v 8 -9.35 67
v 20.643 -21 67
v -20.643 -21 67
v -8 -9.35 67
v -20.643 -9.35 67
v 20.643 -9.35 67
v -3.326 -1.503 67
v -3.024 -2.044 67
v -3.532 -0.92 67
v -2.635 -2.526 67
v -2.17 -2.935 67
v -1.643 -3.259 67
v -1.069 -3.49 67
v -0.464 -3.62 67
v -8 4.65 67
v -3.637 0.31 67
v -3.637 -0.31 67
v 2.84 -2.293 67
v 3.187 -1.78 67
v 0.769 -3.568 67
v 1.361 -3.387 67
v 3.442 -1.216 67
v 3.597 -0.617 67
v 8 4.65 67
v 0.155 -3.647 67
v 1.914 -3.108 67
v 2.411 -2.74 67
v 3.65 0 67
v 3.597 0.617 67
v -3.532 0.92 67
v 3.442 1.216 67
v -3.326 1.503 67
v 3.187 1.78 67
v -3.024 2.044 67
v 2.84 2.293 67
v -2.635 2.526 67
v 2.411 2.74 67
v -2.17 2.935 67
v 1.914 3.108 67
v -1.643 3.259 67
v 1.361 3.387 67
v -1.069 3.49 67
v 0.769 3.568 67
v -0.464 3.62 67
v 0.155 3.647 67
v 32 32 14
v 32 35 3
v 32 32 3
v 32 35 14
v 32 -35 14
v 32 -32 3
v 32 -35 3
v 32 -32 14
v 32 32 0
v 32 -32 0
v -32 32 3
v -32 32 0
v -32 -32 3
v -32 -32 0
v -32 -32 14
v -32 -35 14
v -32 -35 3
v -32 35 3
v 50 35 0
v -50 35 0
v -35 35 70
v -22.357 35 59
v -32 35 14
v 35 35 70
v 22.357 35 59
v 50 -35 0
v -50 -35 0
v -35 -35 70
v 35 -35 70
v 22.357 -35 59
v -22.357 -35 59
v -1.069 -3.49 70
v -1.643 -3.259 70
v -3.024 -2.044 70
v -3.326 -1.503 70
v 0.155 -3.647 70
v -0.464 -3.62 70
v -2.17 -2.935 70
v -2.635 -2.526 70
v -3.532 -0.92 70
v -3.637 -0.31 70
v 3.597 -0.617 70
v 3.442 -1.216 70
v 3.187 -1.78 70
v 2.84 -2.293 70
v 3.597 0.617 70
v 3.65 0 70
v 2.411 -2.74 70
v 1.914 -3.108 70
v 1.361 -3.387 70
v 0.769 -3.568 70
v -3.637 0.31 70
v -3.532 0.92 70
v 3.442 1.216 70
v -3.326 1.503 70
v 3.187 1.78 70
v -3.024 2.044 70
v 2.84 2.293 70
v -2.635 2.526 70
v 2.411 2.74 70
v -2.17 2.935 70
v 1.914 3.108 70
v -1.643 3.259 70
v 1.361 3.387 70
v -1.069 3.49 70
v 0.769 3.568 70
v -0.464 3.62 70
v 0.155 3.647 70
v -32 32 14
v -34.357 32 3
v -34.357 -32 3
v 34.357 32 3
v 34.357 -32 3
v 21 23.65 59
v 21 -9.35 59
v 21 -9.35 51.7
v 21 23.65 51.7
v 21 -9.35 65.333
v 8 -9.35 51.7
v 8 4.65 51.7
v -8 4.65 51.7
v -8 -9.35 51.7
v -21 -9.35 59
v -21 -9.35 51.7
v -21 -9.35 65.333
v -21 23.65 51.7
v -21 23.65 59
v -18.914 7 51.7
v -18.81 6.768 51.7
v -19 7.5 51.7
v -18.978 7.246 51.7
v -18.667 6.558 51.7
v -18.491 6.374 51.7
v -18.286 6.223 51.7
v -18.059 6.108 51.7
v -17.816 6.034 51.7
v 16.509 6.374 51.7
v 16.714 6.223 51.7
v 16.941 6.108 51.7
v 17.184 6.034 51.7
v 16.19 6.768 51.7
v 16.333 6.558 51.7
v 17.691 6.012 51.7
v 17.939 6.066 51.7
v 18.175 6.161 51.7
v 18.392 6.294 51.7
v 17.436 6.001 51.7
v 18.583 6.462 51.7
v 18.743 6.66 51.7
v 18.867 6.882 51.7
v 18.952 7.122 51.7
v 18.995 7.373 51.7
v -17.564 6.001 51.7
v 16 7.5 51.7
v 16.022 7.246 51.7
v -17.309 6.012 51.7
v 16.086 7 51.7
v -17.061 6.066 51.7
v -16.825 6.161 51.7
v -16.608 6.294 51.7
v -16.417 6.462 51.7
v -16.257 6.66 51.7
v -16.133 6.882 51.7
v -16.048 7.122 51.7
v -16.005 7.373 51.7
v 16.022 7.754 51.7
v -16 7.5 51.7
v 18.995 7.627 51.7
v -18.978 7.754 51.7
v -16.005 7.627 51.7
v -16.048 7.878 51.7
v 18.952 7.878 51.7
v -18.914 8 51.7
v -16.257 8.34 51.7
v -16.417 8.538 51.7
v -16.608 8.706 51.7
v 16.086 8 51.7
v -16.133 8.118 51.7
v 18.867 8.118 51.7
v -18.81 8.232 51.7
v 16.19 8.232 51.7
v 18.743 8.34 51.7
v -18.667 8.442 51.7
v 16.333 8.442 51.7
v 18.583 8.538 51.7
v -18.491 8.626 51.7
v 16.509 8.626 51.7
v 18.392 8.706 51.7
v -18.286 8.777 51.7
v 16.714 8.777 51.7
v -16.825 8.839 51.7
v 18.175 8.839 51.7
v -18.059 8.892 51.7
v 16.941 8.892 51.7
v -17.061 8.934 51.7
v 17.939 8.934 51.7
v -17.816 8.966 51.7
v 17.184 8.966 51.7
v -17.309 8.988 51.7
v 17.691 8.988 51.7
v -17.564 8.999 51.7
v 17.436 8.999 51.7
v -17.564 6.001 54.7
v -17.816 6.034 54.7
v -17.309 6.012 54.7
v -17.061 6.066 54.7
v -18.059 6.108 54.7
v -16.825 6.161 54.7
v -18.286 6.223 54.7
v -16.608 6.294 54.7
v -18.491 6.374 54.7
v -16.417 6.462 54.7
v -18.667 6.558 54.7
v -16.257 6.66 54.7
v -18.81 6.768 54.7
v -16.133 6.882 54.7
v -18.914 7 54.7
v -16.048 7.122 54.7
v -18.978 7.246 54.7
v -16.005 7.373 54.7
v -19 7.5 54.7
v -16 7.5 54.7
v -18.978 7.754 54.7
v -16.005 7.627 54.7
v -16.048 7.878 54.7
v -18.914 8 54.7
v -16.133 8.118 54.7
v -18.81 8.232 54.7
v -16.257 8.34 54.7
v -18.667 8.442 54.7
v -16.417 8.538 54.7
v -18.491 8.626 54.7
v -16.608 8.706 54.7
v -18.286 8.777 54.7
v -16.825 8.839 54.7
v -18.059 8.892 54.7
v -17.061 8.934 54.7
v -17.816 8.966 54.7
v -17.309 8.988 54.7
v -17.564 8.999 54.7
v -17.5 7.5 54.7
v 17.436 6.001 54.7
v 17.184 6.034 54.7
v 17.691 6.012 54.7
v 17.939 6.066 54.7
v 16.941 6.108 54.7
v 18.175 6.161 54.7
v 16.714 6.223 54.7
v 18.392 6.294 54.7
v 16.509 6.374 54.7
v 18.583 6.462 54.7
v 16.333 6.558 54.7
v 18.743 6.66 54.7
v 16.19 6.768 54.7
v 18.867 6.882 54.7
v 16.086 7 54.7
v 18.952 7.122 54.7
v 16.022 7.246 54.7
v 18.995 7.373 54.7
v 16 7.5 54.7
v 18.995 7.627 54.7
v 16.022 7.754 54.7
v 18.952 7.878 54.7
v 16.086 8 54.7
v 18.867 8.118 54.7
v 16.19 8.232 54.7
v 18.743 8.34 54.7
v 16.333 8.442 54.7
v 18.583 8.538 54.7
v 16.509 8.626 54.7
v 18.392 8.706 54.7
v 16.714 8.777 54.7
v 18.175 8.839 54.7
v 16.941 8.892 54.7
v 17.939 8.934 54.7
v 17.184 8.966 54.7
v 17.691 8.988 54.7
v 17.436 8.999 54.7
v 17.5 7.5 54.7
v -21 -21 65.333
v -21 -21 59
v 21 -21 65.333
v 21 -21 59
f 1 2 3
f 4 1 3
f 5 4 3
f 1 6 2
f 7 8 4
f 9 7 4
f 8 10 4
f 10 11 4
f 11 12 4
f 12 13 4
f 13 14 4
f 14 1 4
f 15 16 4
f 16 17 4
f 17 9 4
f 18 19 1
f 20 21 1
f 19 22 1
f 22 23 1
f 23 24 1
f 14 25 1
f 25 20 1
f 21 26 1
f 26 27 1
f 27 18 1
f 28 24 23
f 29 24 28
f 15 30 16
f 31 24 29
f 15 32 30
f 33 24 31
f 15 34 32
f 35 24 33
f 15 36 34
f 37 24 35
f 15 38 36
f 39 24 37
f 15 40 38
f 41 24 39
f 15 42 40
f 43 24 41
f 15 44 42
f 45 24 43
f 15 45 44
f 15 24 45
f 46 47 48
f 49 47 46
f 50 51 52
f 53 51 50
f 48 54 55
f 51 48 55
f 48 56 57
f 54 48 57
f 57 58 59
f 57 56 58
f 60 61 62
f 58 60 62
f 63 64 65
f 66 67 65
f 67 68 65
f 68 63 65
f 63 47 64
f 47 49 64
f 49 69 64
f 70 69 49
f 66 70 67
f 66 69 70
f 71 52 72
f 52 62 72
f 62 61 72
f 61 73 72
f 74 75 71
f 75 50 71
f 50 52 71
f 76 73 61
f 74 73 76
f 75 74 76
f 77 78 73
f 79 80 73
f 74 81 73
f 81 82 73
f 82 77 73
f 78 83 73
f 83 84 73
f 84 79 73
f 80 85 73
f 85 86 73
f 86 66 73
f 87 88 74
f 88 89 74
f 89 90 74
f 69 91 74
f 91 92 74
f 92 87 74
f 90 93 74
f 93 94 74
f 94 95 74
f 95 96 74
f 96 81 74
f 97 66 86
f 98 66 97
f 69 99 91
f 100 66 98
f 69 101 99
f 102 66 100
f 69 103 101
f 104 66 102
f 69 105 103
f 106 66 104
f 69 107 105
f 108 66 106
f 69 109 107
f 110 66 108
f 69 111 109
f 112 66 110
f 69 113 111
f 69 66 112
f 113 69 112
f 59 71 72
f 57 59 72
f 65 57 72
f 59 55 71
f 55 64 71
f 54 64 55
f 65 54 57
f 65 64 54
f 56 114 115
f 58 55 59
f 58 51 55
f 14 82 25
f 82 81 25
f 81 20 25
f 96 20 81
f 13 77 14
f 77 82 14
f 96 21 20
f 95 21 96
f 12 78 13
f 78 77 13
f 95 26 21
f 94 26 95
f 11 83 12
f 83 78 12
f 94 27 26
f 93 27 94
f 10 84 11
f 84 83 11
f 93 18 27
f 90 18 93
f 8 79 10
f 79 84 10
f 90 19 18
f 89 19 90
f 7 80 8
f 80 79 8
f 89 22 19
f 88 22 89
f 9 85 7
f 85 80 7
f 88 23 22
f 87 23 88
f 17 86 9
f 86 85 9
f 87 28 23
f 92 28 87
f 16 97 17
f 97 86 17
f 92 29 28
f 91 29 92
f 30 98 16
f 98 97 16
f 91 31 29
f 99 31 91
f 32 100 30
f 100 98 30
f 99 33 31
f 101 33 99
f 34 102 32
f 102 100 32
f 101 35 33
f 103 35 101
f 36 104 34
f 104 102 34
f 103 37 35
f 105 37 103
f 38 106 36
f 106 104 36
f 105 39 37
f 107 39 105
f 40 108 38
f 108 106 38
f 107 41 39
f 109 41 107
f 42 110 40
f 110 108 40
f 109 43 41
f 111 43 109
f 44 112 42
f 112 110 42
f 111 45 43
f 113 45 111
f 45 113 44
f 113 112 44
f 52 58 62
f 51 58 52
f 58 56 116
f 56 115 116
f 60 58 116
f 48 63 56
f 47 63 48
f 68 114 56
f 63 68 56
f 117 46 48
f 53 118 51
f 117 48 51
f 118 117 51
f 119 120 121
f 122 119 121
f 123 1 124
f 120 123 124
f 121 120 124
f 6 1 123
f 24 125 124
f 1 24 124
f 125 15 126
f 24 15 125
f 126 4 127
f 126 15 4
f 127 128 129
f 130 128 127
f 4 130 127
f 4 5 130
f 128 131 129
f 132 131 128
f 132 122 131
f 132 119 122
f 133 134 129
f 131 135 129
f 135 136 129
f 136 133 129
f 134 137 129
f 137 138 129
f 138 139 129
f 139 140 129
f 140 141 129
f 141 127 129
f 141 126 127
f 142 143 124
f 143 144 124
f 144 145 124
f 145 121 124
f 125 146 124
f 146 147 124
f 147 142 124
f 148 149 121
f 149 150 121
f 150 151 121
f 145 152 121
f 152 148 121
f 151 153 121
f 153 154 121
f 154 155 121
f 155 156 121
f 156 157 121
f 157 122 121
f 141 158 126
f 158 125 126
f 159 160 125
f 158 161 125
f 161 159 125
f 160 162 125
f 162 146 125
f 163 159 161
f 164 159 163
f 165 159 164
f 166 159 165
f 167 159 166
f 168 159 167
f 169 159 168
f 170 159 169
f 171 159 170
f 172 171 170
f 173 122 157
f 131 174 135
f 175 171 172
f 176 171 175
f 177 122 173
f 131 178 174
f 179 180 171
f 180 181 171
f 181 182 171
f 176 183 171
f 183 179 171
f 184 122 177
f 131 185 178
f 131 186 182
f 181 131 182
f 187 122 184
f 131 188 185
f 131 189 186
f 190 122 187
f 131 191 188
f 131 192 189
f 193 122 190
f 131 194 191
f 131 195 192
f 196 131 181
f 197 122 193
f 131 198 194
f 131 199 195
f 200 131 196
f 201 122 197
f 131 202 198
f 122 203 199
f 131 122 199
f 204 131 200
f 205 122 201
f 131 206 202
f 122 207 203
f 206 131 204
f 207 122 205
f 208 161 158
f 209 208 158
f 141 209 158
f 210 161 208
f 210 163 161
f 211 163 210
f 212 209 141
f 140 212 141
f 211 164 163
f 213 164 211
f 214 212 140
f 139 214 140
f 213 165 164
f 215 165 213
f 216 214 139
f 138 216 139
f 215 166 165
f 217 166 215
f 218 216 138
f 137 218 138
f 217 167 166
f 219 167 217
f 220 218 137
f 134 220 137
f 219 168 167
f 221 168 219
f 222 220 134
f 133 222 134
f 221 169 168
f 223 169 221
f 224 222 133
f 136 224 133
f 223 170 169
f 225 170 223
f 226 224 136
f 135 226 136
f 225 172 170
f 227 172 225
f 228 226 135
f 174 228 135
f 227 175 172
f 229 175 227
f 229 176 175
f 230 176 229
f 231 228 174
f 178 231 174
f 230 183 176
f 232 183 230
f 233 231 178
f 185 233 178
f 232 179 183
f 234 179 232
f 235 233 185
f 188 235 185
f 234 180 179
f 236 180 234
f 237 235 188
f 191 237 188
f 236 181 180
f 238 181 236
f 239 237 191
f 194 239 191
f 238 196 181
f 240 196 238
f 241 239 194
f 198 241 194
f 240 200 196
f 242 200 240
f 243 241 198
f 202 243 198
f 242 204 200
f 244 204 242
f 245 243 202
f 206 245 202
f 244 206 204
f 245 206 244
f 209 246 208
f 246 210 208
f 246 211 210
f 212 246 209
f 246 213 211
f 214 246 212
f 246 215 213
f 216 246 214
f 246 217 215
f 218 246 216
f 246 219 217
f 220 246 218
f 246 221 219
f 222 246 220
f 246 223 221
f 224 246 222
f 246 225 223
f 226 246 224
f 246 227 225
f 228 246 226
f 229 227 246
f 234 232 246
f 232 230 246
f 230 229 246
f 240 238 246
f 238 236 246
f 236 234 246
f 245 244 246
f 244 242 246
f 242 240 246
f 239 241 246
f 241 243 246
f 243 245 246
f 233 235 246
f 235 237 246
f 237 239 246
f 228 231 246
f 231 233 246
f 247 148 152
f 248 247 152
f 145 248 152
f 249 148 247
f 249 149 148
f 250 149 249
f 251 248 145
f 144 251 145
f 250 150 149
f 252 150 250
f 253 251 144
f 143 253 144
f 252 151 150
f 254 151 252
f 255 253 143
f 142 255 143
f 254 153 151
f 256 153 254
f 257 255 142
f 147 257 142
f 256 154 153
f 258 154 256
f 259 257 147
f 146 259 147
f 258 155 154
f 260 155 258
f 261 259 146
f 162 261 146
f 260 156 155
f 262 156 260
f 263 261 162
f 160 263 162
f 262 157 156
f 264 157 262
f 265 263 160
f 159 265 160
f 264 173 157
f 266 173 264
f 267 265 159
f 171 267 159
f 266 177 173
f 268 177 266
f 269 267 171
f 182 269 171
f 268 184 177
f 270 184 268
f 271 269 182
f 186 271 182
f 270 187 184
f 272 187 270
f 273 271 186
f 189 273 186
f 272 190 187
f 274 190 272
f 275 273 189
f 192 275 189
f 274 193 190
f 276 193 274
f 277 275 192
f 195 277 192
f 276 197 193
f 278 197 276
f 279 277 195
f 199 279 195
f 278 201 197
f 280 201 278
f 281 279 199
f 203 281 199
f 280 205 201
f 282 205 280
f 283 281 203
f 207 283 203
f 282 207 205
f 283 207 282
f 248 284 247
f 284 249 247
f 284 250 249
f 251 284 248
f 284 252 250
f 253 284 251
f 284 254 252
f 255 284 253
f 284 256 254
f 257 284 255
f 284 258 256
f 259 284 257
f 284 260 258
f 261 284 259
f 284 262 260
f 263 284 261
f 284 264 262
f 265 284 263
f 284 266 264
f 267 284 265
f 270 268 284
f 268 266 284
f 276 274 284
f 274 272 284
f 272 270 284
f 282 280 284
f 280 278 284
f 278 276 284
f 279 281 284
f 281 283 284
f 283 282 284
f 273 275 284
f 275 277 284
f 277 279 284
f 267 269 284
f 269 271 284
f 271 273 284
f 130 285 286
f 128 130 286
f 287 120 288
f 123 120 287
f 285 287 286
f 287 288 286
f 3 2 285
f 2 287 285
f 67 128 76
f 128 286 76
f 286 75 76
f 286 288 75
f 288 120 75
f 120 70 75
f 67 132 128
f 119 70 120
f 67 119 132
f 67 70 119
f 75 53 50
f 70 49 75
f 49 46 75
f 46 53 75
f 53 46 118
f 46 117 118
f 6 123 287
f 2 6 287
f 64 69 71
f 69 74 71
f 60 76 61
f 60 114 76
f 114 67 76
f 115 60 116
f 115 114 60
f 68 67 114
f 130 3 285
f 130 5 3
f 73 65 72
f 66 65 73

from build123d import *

# Parameters (mm, degrees)
SCHIZZO1_W                   = 70
SCHIZZO1_H                   = 70
ESTRUSIONE_ESTRUSIONE1_DEPTH = 70
SCHIZZO3_W                   = 64
SCHIZZO3_H                   = 64
TAGLIO_ESTRUSIONE2_DEPTH     = 67
TAGLIO_ESTRUSIONE1_REACH     = 87.732
SCHIZZO2_R                   = 3.65
TAGLIO_ESTRUSIONE3_START     = -70
SCHIZZO4_W                   = 64
SCHIZZO4_H                   = 64
TAGLIO_ESTRUSIONE3_DEPTH     = 70
SPECCHIA2_START              = -70
SPECCHIA2_COPY_1_SKETCH_W    = 64
SPECCHIA2_COPY_1_SKETCH_H    = 64
SPECCHIA2_COPY_1_DEPTH       = 70
ESTRUSIONE_ESTRUSIONE2_DEPTH = 15.3
SCHIZZO6_R                   = 1.5
TAGLIO_ESTRUSIONE4_DEPTH     = 3
SCHIZZO7_W                   = 42
SCHIZZO7_H                   = 14
SCHIZZO7_H_2                 = 11.35
ESTRUSIONE_ESTRUSIONE3_DEPTH = 8
SCHIZZO8_W                   = 15
SCHIZZO8_H                   = 70


with BuildPart() as part:
    # Schizzo1 → Estrusione-Estrusione1 (new body)
    with BuildSketch(Plane.XY):
        Rectangle(SCHIZZO1_W, SCHIZZO1_H)
    extrude(amount=ESTRUSIONE_ESTRUSIONE1_DEPTH)

    # Schizzo3 → Taglio-Estrusione2 (cut)
    with BuildSketch(Plane(origin=(0, 0, 0), x_dir=(-1, 0, 0), z_dir=(0, 0, -1))):
        Rectangle(SCHIZZO3_W, SCHIZZO3_H)
    extrude(amount=-TAGLIO_ESTRUSIONE2_DEPTH, mode=Mode.SUBTRACT)

    # Schizzo2 → Taglio-Estrusione1 (cut, up to next)
    with BuildSketch(Plane.XY.offset(70), mode=Mode.PRIVATE) as taglio_estrusione1_sk1:
        Circle(SCHIZZO2_R)
    taglio_estrusione1_tool1 = extrude(taglio_estrusione1_sk1.sketch, amount=-TAGLIO_ESTRUSIONE1_REACH, mode=Mode.PRIVATE) & part.part
    add(taglio_estrusione1_tool1.solids().sort_by_distance((0, 0, 70))[0], mode=Mode.SUBTRACT)

    # Schizzo4 → Taglio-Estrusione3 (cut)
    with BuildSketch(Plane.XZ.offset(35).offset(TAGLIO_ESTRUSIONE3_START)):
        with Locations((0, 35)):
            Rectangle(SCHIZZO4_W, SCHIZZO4_H)
    taglio_estrusione3 = extrude(amount=TAGLIO_ESTRUSIONE3_DEPTH, mode=Mode.SUBTRACT)

    # Specchia1: Taglio-Estrusione3 across plane
    add(taglio_estrusione3.mirror(Plane(origin=(0, 0, 0), x_dir=(0, 0, 1), z_dir=(-0.7071067811865476, 0.7071067811865475, 0))), mode=Mode.SUBTRACT)

    # Specchia2: Taglio-Estrusione3 across plane
    add(taglio_estrusione3.mirror(Plane(origin=(0, 0, 0), x_dir=(0, 0, 1), z_dir=(-0.7071067811865476, 0.7071067811865475, 0))), mode=Mode.SUBTRACT)

    # Specchia2 copy 1 sketch → Specchia2 copy 1 (cut)
    with BuildSketch(Plane.XZ.offset(35).offset(SPECCHIA2_START)):
        with Locations((0, 35)):
            Rectangle(SPECCHIA2_COPY_1_SKETCH_W, SPECCHIA2_COPY_1_SKETCH_H)
    extrude(amount=SPECCHIA2_COPY_1_DEPTH, mode=Mode.SUBTRACT)

    # Schizzo5 → Estrusione-Estrusione2 (add)
    with BuildSketch(Plane(origin=(0, 0, 67), x_dir=(-1, 0, 0), z_dir=(0, 0, -1))):
        Polygon((-21, 23.65), (21, 23.65), (21, -9.35), (8, -9.35), (8, 4.65), (-8, 4.65), (-8, -9.35), (-21, -9.35), align=None)
    extrude(amount=ESTRUSIONE_ESTRUSIONE2_DEPTH)

    # Schizzo6 → Taglio-Estrusione4 (cut)
    with BuildSketch(Plane(origin=(0, 0, 51.7), x_dir=(-1, 0, 0), z_dir=(0, 0, -1))):
        with Locations((-17.5, 7.5)):
            Circle(SCHIZZO6_R)
        with Locations(Location((17.5, 7.5, 0), (0, 0, 180))):
            Circle(SCHIZZO6_R)
    extrude(amount=-TAGLIO_ESTRUSIONE4_DEPTH, mode=Mode.SUBTRACT)

    # Schizzo7 → Estrusione-Estrusione3 (add)
    with BuildSketch(Plane(origin=(0, 0, 67), x_dir=(-1, 0, 0), z_dir=(0, 0, -1))):
        with Locations((0, -28)):
            Rectangle(SCHIZZO7_W, SCHIZZO7_H)
        Polygon((32, 32), (32, 35), (21, 35), (21, 23.65), (21, -9.35), (21, -21), (21, -35), (32, -35), (32, -32), (35, -32), (35, 32), align=None)
        with Locations((0, 29.325)):
            Rectangle(SCHIZZO7_W, SCHIZZO7_H_2)
        Polygon((-21, 23.65), (-21, 35), (-32, 35), (-32, 32), (-35, 32), (-35, -32), (-32, -32), (-32, -35), (-21, -35), (-21, -21), (-21, -9.35), align=None)
    extrude(amount=ESTRUSIONE_ESTRUSIONE3_DEPTH)

    # Sweep1: sweep along a path in Schizzo9
    with BuildLine(Plane.XZ.offset(35)) as sweep1_path:
        Line((35, 70), (50, 0))
    # Schizzo8 → Sweep1 (sweep)
    with BuildSketch(Plane(origin=(0, 0, 0), x_dir=(-1, 0, 0), z_dir=(0, 0, -1))):
        with Locations((-42.5, 0)):
            Rectangle(SCHIZZO8_W, SCHIZZO8_H)
    sweep1 = sweep(path=sweep1_path.line)

    # Specchia4: Sweep1 across plane
    add(sweep1.mirror(Plane(origin=(0, 0, 0), x_dir=(0, 0, 1), z_dir=(1, 0, 0))))


solid = part.part
